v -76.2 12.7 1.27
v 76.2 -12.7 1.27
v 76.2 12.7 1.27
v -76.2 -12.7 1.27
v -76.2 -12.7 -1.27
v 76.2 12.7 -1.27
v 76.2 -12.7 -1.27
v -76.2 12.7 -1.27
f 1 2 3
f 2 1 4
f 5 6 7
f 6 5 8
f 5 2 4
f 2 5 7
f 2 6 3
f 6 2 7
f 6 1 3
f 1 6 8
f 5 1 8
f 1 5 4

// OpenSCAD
// ========================================
// a 6 by 1 by 0.1 inch plate
// NeuroCAD canonical IR; dimensions are millimetres
// ========================================
$fn = 48;

cube(size=[152.4, 25.4, 2.54], center=true);
